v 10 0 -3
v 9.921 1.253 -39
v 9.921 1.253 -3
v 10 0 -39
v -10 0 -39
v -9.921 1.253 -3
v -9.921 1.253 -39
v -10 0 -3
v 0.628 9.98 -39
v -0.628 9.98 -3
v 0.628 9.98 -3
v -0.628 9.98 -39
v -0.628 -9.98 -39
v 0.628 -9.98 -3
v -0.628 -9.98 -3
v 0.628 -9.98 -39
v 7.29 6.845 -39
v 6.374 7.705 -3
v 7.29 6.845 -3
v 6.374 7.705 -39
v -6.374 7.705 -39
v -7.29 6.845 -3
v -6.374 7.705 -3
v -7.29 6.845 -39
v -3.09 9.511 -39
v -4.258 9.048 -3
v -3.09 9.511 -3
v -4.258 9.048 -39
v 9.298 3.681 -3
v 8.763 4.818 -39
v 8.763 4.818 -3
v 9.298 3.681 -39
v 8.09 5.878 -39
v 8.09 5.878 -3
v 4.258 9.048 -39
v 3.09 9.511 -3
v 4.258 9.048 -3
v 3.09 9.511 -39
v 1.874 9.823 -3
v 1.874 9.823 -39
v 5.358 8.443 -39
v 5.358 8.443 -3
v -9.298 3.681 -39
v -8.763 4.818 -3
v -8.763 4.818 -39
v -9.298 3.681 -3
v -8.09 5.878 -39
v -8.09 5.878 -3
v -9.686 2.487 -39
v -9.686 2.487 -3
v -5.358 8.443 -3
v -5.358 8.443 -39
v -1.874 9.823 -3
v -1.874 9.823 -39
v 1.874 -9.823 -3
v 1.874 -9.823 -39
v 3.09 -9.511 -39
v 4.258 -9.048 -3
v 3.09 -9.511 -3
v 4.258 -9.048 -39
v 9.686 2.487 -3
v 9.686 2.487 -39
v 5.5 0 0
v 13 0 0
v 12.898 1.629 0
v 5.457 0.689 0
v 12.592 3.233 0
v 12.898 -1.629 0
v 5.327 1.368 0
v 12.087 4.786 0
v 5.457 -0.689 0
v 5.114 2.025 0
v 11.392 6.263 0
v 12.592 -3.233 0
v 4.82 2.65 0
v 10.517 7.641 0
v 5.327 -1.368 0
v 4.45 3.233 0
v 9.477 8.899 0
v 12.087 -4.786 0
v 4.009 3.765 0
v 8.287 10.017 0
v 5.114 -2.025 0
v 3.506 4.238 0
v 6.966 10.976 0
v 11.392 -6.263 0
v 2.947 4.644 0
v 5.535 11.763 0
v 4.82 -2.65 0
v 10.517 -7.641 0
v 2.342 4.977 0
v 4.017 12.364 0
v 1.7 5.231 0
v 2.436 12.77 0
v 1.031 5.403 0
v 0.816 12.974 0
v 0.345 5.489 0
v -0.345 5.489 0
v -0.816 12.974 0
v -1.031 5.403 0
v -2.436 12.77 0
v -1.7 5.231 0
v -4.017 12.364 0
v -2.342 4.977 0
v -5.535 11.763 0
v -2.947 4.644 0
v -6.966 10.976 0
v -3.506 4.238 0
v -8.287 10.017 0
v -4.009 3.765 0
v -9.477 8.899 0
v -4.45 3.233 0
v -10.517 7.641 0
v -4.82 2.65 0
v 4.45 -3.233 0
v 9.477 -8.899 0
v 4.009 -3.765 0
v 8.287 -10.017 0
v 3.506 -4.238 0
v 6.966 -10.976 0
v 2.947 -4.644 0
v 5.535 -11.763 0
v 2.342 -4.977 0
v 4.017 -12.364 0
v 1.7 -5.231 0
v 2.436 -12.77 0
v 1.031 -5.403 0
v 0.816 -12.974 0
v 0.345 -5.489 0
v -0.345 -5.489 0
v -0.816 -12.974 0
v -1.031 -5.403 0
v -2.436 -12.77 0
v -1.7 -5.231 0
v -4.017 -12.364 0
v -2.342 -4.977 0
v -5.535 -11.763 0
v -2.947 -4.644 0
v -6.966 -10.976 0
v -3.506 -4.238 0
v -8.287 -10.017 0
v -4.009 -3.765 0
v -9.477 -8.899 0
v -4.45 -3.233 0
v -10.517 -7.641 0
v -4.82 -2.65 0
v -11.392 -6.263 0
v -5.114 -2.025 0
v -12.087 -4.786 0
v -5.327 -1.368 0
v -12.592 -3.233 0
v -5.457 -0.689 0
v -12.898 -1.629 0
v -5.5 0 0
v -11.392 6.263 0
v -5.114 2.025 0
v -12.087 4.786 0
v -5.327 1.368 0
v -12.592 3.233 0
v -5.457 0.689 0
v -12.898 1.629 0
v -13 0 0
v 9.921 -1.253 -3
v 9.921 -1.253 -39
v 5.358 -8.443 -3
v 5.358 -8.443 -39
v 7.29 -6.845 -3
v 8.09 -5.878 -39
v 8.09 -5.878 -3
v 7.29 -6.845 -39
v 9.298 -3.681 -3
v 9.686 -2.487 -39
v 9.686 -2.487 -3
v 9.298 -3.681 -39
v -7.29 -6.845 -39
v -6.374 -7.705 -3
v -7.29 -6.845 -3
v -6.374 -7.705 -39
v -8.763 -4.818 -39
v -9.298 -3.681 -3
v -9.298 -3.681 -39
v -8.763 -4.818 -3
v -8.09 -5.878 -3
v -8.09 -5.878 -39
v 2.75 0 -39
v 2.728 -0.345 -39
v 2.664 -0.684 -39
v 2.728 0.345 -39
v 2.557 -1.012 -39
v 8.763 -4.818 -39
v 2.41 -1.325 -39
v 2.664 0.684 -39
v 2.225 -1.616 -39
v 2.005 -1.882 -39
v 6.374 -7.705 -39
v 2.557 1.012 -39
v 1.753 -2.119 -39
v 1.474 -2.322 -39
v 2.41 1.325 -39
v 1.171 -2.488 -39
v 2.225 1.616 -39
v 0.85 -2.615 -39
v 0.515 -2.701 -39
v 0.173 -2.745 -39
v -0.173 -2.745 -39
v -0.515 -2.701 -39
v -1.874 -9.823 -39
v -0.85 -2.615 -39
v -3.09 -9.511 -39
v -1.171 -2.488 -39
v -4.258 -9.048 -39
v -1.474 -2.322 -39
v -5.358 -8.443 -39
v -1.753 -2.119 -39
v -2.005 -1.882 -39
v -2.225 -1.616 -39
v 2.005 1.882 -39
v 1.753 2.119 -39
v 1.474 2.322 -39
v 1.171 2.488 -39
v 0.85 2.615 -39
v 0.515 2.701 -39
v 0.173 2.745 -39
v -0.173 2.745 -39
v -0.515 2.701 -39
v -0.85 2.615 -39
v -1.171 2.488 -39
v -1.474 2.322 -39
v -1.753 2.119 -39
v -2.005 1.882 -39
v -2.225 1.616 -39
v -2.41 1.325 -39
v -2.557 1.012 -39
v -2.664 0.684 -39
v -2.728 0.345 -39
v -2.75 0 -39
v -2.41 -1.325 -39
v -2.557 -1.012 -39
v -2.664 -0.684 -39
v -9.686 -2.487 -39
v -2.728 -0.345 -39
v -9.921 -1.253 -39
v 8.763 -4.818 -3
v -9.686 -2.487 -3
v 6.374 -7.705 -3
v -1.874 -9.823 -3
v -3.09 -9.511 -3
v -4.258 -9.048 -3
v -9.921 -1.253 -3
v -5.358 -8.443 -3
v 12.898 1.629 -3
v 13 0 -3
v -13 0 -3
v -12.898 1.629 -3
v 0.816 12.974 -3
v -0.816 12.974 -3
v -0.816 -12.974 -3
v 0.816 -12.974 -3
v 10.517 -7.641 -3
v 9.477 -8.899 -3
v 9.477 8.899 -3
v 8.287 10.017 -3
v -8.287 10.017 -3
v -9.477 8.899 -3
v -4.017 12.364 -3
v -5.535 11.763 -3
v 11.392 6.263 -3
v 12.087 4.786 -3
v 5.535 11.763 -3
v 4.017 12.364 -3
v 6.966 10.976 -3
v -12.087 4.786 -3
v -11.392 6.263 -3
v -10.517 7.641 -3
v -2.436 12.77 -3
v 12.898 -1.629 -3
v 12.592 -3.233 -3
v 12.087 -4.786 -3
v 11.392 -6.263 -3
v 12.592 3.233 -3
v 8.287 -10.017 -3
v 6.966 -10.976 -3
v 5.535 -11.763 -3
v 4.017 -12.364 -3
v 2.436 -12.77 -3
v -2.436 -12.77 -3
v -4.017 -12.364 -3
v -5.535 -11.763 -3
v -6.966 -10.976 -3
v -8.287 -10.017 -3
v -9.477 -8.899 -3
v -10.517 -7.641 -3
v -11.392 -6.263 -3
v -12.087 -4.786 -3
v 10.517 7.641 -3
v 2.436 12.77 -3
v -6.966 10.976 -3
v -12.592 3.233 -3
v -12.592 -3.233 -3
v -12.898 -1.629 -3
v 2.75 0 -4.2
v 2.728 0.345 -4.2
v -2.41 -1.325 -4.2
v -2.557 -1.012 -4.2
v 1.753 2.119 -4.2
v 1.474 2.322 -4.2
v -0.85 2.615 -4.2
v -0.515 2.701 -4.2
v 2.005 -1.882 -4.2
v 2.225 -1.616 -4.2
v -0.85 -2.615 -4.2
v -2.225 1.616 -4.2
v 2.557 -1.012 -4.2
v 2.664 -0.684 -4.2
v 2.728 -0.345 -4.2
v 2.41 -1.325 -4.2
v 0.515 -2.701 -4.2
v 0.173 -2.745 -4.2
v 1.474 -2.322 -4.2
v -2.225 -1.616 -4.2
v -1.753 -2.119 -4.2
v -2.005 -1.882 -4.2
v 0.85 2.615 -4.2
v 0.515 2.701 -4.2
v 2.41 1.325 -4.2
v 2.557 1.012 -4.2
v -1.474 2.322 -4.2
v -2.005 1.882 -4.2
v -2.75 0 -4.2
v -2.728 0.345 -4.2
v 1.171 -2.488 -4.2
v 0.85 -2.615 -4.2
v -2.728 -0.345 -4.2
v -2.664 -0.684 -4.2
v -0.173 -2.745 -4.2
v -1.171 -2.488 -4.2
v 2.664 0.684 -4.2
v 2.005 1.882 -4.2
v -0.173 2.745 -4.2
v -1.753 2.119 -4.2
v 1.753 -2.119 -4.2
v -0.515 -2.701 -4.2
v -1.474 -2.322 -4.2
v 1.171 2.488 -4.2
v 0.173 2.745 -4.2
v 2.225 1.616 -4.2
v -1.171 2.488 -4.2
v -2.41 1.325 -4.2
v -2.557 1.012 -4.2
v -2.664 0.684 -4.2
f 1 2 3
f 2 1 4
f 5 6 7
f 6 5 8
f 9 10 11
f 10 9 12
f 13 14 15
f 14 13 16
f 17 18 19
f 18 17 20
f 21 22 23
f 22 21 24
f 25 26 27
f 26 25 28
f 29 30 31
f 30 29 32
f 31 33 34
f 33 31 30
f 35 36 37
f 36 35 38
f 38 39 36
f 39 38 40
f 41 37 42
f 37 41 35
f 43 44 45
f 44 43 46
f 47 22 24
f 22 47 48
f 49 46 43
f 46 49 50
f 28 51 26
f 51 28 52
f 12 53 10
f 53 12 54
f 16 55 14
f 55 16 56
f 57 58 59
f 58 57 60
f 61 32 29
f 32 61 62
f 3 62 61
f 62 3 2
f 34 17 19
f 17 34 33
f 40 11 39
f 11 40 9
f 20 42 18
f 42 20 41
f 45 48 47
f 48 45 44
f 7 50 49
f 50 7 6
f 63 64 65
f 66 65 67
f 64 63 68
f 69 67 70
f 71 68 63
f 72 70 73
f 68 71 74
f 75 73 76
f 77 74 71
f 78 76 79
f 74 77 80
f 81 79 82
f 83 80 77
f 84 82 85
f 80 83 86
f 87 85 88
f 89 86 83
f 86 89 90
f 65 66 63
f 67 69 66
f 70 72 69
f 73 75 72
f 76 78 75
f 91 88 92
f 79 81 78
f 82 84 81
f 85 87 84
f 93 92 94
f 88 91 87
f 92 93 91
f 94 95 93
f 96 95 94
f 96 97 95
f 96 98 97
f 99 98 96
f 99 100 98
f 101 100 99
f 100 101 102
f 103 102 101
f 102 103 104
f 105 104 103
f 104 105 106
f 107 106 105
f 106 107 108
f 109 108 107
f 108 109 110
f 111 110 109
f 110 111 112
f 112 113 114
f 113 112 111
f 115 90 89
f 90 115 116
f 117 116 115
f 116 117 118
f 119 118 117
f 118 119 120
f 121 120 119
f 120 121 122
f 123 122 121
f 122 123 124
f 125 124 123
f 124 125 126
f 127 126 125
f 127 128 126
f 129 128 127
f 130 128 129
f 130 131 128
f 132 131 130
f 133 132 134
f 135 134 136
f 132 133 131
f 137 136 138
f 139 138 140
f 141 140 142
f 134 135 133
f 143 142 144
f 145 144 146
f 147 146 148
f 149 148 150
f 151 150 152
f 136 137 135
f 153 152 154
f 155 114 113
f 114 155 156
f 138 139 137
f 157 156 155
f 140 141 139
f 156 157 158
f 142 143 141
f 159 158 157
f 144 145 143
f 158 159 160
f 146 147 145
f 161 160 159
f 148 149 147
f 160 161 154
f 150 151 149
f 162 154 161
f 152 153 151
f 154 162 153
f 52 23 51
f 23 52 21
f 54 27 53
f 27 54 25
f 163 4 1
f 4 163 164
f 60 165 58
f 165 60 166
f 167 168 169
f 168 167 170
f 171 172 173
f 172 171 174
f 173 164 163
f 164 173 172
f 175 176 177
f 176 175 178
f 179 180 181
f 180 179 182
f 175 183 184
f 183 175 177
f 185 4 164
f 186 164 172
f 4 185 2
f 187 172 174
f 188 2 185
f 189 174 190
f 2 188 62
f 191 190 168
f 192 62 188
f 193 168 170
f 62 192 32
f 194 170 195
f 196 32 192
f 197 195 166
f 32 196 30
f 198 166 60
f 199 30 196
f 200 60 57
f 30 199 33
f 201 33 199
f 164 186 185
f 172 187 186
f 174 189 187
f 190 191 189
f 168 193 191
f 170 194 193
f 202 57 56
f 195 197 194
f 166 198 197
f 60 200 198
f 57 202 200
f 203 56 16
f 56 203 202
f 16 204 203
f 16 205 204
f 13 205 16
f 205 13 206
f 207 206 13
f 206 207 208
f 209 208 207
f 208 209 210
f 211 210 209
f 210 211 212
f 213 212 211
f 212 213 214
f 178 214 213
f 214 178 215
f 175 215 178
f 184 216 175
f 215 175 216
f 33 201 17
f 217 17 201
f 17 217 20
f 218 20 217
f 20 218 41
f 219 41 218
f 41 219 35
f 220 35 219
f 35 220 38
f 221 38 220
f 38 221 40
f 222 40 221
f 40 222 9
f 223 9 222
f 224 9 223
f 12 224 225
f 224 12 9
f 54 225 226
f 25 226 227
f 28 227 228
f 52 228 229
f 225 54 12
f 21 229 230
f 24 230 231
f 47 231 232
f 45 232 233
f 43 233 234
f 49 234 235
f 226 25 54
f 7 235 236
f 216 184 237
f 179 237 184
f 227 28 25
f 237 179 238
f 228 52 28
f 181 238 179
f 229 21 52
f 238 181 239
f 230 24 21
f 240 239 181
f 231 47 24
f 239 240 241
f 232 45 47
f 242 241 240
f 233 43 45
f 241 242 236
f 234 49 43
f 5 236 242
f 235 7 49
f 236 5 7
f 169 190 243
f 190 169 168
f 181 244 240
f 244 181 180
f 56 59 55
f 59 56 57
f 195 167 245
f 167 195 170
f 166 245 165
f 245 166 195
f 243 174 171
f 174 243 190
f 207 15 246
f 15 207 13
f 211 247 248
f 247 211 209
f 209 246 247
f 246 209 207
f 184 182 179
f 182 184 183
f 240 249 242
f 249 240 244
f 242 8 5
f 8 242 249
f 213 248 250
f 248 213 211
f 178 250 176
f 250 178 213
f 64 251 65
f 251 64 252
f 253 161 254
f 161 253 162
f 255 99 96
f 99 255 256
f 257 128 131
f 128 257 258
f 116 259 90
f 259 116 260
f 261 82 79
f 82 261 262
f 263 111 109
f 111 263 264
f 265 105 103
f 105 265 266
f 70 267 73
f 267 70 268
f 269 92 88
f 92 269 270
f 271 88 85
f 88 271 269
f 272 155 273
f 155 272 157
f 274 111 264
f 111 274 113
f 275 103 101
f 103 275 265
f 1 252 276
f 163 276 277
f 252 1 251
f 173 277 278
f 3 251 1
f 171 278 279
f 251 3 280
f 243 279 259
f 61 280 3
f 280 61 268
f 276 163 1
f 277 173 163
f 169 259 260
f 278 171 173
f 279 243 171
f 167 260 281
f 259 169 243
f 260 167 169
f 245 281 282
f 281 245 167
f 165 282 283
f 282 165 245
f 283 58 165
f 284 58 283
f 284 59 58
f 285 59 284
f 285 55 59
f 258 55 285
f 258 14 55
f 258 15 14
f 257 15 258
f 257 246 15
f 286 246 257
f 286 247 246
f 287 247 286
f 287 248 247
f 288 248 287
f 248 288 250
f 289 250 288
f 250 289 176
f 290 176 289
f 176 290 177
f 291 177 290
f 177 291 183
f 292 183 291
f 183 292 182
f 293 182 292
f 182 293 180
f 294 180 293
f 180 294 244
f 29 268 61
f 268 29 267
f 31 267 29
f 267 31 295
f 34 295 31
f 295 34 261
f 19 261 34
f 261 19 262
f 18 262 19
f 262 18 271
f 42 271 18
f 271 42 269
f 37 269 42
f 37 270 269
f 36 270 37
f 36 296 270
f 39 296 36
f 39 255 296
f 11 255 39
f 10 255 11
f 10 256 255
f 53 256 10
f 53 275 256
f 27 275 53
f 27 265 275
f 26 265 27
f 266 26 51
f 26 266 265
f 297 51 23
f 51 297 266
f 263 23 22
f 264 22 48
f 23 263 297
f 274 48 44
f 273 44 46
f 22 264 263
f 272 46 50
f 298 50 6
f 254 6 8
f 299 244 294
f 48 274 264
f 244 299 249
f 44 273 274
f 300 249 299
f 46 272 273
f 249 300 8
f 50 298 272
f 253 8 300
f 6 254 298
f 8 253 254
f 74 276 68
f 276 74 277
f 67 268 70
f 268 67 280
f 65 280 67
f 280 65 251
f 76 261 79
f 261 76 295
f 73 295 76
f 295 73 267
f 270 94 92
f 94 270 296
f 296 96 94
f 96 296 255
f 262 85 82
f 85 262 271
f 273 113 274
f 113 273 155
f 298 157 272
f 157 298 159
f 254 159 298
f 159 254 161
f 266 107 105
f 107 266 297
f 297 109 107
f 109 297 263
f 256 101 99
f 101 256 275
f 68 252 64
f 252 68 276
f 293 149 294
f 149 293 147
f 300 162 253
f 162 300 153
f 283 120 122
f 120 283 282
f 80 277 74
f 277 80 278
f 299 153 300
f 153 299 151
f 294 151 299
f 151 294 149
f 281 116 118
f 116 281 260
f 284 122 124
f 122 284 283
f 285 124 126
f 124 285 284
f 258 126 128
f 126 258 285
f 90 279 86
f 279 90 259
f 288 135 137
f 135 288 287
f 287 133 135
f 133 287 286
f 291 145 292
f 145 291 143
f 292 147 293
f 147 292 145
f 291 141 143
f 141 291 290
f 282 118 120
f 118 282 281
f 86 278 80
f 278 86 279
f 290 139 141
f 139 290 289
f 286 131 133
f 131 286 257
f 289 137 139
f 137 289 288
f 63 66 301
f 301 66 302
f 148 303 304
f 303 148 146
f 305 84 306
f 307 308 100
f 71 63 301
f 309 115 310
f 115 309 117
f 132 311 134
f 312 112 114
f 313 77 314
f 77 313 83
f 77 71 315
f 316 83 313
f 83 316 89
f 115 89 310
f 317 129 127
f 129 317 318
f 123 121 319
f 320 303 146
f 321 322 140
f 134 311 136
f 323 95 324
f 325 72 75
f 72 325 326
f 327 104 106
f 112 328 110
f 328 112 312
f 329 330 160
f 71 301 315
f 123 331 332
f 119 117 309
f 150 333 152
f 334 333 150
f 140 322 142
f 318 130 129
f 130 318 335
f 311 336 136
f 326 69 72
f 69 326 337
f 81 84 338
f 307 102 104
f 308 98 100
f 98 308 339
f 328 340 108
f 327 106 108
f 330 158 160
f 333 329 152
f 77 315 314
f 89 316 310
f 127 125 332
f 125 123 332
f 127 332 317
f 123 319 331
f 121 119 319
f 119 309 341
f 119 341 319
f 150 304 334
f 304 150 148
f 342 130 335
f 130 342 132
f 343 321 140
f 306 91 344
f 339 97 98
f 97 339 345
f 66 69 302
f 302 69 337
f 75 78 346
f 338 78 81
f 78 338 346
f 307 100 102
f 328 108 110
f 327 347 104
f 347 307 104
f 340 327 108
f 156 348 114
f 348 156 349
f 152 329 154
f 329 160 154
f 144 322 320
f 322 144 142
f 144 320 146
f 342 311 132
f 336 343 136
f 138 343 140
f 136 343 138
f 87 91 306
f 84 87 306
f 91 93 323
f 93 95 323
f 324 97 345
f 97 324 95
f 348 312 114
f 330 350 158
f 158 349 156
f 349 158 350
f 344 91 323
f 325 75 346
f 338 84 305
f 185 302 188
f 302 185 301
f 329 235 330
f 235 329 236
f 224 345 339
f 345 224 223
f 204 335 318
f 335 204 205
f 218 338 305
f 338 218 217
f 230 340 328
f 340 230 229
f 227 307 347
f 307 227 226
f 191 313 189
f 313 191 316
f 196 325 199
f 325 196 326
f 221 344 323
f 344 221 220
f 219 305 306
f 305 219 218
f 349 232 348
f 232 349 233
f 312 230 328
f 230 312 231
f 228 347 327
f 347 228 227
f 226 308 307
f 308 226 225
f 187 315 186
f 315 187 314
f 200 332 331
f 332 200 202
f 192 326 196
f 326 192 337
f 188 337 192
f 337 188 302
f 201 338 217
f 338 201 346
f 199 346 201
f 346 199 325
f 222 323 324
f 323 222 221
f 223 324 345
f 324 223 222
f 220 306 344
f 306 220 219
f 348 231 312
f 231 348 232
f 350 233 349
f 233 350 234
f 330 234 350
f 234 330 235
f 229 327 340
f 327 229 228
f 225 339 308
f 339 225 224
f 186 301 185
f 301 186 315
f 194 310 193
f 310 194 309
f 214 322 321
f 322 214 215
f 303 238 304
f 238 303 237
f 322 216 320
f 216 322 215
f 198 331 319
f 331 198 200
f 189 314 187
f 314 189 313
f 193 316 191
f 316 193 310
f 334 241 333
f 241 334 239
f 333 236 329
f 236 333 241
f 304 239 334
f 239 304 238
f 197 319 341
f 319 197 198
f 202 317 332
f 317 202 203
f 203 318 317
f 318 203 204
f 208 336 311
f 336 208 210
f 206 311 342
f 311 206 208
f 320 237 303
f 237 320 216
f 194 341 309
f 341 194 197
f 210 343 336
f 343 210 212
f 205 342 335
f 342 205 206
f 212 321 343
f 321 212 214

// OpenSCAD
$fn = 50;


difference() {
	union() {
		translate(v = [0, 0, -39.0000000000]) {
			cylinder(h = 39, r = 10.0000000000);
		}
		translate(v = [0, 0, -3.0000000000]) {
			cylinder(h = 3, r = 13.0000000000);
		}
	}
	union() {
		translate(v = [0, 0, 0]) {
			rotate(a = [0, 0, 0]) {
				difference() {
					union() {
						#translate(v = [0, 0, -39.0000000000]) {
							cylinder(h = 39, r = 2.2500000000);
						}
						#translate(v = [0, 0, -4.2000000000]) {
							cylinder(h = 4.2000000000, r1 = 2.7500000000, r2 = 5.5000000000);
						}
						#translate(v = [0, 0, -39.0000000000]) {
							cylinder(h = 39, r = 2.7500000000);
						}
						#translate(v = [0, 0, -39.0000000000]) {
							cylinder(h = 39, r = 2.2500000000);
						}
					}
					union();
				}
			}
		}
	}
}
